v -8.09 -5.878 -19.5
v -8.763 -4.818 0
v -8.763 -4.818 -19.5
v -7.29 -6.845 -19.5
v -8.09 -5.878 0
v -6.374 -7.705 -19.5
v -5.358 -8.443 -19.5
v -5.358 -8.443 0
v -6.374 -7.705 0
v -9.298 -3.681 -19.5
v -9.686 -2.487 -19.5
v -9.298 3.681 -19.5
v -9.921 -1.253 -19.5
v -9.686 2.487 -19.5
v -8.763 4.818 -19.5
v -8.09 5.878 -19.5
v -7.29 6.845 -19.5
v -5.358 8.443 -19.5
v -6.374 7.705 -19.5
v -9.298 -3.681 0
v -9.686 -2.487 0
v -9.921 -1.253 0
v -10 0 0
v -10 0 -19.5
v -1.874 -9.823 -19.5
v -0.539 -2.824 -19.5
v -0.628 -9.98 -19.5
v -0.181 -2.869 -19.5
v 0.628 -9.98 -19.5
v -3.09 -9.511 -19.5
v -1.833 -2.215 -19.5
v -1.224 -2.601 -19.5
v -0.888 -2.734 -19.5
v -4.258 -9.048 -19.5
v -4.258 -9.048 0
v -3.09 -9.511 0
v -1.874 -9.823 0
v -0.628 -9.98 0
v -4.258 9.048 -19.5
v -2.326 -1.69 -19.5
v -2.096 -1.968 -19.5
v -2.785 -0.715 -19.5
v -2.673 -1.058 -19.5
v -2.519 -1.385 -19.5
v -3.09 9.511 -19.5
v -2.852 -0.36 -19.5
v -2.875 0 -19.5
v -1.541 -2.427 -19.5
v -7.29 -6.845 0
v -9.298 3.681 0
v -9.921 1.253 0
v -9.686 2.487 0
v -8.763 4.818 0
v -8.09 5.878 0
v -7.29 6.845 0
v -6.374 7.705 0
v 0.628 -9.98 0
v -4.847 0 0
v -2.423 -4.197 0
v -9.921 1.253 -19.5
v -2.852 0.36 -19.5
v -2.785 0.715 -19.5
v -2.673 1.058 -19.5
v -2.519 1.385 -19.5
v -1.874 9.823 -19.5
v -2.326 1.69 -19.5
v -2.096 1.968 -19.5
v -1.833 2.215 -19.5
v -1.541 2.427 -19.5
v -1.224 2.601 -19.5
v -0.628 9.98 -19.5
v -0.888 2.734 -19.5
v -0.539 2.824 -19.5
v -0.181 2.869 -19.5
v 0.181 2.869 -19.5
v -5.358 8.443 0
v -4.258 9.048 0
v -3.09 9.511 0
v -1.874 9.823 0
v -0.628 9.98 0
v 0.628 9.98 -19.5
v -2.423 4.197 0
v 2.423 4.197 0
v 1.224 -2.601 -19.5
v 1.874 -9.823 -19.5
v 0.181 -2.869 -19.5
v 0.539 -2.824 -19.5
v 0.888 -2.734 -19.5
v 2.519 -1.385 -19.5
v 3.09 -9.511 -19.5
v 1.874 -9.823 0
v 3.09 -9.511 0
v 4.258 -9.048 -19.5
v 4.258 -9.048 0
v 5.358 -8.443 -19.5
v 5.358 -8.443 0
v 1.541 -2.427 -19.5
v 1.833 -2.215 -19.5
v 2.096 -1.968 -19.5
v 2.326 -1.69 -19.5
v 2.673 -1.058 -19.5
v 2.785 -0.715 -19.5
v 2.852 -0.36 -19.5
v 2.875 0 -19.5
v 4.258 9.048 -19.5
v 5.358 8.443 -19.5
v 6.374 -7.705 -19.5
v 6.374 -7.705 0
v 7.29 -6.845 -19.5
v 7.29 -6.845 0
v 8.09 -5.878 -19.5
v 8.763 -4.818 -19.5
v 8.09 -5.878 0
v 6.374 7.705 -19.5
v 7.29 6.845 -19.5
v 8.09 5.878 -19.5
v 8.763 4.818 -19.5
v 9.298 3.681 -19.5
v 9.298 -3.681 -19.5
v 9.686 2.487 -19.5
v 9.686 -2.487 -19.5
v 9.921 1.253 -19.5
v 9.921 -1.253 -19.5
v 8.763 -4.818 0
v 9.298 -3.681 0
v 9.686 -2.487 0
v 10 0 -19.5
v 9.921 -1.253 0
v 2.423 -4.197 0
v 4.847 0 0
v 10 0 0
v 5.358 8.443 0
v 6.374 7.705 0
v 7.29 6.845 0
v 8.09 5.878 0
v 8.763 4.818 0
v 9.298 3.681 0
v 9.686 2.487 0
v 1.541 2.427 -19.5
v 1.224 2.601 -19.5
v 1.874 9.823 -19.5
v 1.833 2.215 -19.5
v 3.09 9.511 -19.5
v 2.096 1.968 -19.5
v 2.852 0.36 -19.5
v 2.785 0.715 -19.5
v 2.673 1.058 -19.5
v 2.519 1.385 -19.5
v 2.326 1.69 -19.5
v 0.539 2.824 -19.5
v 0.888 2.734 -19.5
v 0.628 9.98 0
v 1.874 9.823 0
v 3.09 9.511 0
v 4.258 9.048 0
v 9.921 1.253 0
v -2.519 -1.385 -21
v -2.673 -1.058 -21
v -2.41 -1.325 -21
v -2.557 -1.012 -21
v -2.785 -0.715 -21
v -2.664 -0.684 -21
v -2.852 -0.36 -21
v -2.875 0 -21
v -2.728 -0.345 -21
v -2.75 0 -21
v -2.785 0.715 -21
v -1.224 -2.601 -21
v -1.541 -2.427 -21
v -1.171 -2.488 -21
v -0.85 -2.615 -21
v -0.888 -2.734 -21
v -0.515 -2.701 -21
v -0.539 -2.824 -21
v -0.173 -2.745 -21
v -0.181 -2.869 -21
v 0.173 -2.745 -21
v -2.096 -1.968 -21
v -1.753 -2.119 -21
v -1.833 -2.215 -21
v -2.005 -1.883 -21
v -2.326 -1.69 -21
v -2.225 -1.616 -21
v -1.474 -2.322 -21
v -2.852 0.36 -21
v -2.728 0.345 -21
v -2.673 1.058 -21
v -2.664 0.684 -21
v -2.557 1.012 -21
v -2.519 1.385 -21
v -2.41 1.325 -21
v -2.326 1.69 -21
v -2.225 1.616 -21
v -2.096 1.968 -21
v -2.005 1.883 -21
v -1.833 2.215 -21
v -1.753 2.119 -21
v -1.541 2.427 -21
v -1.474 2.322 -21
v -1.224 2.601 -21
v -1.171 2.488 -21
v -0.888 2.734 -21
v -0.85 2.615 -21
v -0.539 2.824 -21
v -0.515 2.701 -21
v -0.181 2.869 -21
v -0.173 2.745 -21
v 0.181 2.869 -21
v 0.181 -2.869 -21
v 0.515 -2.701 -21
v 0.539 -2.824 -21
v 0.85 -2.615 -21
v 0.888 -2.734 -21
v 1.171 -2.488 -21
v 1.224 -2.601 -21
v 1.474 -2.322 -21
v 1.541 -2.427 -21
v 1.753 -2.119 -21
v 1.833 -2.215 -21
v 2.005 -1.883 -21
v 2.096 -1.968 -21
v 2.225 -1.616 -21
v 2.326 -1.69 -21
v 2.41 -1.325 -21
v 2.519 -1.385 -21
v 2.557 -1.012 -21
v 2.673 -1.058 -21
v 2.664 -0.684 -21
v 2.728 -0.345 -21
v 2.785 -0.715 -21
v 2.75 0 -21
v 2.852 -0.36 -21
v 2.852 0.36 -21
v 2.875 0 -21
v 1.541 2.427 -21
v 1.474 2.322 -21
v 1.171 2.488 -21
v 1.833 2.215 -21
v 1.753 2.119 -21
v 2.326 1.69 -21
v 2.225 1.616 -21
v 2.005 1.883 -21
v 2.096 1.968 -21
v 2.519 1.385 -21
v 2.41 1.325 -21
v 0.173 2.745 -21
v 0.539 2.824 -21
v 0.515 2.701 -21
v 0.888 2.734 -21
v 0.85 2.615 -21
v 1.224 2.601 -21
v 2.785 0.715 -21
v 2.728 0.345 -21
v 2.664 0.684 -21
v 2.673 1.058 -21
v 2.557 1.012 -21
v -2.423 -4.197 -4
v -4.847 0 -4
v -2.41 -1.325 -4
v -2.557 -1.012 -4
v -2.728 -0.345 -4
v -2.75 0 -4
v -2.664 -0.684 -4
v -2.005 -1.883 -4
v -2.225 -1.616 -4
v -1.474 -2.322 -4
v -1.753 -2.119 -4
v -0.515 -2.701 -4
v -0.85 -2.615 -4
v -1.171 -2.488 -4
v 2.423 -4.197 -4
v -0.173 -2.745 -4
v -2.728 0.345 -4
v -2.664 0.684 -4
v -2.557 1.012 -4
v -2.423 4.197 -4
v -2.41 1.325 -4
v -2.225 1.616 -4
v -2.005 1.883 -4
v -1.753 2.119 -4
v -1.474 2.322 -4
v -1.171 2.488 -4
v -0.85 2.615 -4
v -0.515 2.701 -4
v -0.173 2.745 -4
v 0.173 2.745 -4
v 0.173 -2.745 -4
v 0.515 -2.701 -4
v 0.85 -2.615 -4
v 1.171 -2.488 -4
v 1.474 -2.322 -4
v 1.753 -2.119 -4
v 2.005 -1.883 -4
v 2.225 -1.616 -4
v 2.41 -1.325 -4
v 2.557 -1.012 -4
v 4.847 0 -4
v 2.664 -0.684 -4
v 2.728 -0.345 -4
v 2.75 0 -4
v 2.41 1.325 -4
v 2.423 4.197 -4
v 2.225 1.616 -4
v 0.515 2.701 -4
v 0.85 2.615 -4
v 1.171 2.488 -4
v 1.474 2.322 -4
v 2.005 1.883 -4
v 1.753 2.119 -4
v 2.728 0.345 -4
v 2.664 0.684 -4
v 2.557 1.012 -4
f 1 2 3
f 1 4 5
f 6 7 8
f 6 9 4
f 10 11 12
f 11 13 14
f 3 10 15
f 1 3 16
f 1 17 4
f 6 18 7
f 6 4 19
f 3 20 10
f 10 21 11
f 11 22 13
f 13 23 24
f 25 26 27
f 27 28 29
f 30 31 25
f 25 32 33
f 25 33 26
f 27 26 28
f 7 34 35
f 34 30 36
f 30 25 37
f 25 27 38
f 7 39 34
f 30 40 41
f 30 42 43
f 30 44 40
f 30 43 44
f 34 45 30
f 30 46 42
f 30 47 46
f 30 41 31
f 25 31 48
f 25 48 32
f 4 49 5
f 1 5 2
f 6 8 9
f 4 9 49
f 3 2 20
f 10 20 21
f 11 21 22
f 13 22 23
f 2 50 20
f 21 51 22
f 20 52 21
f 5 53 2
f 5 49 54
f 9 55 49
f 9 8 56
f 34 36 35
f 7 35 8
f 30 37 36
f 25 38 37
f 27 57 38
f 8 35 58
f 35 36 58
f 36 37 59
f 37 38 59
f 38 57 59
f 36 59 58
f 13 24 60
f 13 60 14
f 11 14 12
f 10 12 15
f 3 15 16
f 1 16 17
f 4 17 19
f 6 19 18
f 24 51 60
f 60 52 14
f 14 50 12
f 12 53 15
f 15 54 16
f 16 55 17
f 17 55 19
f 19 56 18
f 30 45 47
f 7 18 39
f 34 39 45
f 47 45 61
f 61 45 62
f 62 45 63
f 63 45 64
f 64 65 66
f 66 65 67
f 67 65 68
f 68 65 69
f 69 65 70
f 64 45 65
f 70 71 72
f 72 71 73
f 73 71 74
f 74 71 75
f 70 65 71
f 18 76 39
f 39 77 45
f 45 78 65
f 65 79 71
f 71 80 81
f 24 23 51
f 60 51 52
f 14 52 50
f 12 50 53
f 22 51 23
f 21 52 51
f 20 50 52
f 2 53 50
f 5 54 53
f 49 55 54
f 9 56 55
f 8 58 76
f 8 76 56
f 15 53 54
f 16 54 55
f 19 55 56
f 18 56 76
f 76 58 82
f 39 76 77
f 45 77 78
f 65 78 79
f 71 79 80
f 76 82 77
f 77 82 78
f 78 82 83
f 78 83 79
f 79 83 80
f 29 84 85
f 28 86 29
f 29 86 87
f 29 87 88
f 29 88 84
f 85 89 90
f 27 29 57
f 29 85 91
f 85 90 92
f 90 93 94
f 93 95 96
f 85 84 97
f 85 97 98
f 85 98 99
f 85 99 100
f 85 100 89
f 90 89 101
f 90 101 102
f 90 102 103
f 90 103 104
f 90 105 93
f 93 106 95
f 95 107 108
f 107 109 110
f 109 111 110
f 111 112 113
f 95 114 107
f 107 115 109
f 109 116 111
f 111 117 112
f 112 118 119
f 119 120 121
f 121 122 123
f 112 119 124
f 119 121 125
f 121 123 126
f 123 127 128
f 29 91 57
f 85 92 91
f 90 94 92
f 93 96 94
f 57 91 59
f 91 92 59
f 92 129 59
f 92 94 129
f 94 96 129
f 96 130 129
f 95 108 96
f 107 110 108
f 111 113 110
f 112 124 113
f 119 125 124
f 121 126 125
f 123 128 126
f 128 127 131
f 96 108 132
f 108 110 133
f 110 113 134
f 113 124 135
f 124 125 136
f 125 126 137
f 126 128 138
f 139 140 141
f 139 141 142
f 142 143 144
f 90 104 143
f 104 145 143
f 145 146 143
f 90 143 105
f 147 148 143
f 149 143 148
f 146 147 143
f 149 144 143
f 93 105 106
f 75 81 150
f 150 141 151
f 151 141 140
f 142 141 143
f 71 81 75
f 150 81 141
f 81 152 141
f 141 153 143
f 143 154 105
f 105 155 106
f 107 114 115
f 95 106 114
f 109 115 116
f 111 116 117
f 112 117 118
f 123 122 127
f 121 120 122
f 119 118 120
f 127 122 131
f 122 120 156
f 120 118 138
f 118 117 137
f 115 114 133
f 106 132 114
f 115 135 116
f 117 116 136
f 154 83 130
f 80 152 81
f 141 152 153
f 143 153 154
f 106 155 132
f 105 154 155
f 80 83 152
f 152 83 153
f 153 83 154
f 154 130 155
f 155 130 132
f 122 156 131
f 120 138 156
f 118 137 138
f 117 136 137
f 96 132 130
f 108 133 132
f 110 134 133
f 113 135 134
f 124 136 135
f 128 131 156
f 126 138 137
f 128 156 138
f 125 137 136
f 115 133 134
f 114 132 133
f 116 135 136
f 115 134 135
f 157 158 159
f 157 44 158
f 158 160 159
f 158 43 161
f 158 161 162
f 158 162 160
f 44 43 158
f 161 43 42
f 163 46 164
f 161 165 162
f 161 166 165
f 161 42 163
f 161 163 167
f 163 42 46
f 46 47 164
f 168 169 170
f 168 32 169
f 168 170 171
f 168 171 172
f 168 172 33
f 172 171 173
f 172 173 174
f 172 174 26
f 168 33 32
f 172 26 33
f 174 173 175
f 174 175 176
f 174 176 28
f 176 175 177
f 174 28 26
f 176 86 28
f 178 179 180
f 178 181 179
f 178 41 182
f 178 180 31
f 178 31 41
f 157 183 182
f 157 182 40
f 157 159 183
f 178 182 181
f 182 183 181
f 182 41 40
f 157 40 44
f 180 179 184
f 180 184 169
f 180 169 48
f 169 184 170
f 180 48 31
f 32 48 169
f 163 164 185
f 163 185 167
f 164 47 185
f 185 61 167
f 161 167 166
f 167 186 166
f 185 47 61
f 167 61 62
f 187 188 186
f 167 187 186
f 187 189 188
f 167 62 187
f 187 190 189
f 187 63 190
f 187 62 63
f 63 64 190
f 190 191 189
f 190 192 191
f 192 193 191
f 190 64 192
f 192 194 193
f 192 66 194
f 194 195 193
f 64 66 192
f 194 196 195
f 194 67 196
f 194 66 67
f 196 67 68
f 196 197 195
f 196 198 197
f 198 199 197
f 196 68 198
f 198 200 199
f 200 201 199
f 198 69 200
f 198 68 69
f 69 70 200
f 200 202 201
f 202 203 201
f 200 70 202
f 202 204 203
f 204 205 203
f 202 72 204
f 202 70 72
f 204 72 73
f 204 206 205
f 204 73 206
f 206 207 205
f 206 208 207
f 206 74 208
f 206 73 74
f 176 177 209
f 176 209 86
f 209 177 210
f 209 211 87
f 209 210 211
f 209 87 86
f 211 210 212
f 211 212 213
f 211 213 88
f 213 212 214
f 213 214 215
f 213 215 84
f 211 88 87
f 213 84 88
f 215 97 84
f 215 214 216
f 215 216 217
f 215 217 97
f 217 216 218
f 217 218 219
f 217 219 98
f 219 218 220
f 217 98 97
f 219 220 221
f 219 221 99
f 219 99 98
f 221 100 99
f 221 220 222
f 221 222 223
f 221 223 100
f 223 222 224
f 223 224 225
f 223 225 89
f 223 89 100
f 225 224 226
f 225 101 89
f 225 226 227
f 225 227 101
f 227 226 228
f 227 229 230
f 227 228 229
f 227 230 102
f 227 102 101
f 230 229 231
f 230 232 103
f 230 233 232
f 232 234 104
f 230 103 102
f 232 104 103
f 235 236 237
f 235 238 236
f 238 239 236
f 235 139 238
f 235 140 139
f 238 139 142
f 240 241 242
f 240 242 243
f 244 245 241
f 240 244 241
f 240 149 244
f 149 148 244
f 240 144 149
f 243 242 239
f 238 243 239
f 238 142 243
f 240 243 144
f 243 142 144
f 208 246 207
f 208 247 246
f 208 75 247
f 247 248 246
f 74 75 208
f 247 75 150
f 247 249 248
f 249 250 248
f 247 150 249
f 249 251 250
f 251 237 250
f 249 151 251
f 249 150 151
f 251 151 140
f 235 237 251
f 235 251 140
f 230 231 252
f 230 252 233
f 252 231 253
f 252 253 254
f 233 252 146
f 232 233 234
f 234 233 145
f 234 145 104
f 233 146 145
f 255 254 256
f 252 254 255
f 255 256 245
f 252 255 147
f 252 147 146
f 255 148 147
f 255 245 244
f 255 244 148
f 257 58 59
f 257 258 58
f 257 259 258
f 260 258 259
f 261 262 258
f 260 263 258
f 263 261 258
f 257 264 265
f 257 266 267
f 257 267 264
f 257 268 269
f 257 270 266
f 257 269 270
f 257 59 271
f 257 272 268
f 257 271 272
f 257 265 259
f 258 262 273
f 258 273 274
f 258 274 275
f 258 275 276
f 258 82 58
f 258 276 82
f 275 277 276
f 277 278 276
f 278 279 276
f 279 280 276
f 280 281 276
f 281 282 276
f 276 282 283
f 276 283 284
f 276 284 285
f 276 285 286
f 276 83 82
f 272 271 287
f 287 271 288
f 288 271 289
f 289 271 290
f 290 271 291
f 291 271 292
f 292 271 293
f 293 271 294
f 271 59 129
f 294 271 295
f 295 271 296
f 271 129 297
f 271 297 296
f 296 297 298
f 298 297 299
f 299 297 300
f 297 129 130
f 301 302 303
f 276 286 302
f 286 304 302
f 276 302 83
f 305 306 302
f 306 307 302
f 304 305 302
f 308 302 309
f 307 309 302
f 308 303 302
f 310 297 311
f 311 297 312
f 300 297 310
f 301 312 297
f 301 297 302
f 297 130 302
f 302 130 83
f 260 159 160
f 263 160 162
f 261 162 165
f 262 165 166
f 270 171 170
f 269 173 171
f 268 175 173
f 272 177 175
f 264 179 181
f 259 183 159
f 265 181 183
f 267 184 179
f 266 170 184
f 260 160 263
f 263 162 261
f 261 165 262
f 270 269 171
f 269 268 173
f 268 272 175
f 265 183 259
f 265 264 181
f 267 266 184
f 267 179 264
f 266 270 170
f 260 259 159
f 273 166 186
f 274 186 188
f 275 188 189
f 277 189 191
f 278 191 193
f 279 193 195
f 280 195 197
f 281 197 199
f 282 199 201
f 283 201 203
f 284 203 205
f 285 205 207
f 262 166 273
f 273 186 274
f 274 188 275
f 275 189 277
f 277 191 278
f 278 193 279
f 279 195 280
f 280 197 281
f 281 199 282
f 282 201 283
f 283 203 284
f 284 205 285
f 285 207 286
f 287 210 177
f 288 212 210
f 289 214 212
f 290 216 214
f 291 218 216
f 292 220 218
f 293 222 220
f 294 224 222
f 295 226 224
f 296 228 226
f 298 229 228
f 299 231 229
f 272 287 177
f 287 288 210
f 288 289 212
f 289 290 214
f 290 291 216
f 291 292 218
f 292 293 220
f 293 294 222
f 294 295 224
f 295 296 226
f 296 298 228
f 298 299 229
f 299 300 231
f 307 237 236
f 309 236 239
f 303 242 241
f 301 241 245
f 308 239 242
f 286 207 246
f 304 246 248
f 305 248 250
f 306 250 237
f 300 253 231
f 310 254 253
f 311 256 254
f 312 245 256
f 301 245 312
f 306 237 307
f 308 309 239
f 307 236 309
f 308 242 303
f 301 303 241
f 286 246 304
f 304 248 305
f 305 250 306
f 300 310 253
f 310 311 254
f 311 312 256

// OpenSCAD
$fn = 50;


difference() {
	union() {
		translate(v = [0, 0, -19.5000000000]) {
			cylinder(h = 19.5000000000, r = 10.0000000000);
		}
		#translate(v = [0, 0, -21.0000000000]) {
			cylinder(h = 21, r = 2.8750000000);
		}
	}
	union() {
		translate(v = [0, 0, 0]) {
			rotate(a = [0, 0, 0]) {
				difference() {
					union() {
						translate(v = [0, 0, -4]) {
							linear_extrude(height = 4) {
								polygon(points = [[4.8468000000, 0.0000000000], [2.4234000000, 4.1974519271], [-2.4234000000, 4.1974519271], [-4.8468000000, 0.0000000000], [-2.4234000000, -4.1974519271], [2.4234000000, -4.1974519271]]);
							}
						}
					}
					union();
				}
			}
		}
		#translate(v = [0, 0, -100.0000000000]) {
			cylinder(h = 200, r = 2.7500000000);
		}
	}
}
